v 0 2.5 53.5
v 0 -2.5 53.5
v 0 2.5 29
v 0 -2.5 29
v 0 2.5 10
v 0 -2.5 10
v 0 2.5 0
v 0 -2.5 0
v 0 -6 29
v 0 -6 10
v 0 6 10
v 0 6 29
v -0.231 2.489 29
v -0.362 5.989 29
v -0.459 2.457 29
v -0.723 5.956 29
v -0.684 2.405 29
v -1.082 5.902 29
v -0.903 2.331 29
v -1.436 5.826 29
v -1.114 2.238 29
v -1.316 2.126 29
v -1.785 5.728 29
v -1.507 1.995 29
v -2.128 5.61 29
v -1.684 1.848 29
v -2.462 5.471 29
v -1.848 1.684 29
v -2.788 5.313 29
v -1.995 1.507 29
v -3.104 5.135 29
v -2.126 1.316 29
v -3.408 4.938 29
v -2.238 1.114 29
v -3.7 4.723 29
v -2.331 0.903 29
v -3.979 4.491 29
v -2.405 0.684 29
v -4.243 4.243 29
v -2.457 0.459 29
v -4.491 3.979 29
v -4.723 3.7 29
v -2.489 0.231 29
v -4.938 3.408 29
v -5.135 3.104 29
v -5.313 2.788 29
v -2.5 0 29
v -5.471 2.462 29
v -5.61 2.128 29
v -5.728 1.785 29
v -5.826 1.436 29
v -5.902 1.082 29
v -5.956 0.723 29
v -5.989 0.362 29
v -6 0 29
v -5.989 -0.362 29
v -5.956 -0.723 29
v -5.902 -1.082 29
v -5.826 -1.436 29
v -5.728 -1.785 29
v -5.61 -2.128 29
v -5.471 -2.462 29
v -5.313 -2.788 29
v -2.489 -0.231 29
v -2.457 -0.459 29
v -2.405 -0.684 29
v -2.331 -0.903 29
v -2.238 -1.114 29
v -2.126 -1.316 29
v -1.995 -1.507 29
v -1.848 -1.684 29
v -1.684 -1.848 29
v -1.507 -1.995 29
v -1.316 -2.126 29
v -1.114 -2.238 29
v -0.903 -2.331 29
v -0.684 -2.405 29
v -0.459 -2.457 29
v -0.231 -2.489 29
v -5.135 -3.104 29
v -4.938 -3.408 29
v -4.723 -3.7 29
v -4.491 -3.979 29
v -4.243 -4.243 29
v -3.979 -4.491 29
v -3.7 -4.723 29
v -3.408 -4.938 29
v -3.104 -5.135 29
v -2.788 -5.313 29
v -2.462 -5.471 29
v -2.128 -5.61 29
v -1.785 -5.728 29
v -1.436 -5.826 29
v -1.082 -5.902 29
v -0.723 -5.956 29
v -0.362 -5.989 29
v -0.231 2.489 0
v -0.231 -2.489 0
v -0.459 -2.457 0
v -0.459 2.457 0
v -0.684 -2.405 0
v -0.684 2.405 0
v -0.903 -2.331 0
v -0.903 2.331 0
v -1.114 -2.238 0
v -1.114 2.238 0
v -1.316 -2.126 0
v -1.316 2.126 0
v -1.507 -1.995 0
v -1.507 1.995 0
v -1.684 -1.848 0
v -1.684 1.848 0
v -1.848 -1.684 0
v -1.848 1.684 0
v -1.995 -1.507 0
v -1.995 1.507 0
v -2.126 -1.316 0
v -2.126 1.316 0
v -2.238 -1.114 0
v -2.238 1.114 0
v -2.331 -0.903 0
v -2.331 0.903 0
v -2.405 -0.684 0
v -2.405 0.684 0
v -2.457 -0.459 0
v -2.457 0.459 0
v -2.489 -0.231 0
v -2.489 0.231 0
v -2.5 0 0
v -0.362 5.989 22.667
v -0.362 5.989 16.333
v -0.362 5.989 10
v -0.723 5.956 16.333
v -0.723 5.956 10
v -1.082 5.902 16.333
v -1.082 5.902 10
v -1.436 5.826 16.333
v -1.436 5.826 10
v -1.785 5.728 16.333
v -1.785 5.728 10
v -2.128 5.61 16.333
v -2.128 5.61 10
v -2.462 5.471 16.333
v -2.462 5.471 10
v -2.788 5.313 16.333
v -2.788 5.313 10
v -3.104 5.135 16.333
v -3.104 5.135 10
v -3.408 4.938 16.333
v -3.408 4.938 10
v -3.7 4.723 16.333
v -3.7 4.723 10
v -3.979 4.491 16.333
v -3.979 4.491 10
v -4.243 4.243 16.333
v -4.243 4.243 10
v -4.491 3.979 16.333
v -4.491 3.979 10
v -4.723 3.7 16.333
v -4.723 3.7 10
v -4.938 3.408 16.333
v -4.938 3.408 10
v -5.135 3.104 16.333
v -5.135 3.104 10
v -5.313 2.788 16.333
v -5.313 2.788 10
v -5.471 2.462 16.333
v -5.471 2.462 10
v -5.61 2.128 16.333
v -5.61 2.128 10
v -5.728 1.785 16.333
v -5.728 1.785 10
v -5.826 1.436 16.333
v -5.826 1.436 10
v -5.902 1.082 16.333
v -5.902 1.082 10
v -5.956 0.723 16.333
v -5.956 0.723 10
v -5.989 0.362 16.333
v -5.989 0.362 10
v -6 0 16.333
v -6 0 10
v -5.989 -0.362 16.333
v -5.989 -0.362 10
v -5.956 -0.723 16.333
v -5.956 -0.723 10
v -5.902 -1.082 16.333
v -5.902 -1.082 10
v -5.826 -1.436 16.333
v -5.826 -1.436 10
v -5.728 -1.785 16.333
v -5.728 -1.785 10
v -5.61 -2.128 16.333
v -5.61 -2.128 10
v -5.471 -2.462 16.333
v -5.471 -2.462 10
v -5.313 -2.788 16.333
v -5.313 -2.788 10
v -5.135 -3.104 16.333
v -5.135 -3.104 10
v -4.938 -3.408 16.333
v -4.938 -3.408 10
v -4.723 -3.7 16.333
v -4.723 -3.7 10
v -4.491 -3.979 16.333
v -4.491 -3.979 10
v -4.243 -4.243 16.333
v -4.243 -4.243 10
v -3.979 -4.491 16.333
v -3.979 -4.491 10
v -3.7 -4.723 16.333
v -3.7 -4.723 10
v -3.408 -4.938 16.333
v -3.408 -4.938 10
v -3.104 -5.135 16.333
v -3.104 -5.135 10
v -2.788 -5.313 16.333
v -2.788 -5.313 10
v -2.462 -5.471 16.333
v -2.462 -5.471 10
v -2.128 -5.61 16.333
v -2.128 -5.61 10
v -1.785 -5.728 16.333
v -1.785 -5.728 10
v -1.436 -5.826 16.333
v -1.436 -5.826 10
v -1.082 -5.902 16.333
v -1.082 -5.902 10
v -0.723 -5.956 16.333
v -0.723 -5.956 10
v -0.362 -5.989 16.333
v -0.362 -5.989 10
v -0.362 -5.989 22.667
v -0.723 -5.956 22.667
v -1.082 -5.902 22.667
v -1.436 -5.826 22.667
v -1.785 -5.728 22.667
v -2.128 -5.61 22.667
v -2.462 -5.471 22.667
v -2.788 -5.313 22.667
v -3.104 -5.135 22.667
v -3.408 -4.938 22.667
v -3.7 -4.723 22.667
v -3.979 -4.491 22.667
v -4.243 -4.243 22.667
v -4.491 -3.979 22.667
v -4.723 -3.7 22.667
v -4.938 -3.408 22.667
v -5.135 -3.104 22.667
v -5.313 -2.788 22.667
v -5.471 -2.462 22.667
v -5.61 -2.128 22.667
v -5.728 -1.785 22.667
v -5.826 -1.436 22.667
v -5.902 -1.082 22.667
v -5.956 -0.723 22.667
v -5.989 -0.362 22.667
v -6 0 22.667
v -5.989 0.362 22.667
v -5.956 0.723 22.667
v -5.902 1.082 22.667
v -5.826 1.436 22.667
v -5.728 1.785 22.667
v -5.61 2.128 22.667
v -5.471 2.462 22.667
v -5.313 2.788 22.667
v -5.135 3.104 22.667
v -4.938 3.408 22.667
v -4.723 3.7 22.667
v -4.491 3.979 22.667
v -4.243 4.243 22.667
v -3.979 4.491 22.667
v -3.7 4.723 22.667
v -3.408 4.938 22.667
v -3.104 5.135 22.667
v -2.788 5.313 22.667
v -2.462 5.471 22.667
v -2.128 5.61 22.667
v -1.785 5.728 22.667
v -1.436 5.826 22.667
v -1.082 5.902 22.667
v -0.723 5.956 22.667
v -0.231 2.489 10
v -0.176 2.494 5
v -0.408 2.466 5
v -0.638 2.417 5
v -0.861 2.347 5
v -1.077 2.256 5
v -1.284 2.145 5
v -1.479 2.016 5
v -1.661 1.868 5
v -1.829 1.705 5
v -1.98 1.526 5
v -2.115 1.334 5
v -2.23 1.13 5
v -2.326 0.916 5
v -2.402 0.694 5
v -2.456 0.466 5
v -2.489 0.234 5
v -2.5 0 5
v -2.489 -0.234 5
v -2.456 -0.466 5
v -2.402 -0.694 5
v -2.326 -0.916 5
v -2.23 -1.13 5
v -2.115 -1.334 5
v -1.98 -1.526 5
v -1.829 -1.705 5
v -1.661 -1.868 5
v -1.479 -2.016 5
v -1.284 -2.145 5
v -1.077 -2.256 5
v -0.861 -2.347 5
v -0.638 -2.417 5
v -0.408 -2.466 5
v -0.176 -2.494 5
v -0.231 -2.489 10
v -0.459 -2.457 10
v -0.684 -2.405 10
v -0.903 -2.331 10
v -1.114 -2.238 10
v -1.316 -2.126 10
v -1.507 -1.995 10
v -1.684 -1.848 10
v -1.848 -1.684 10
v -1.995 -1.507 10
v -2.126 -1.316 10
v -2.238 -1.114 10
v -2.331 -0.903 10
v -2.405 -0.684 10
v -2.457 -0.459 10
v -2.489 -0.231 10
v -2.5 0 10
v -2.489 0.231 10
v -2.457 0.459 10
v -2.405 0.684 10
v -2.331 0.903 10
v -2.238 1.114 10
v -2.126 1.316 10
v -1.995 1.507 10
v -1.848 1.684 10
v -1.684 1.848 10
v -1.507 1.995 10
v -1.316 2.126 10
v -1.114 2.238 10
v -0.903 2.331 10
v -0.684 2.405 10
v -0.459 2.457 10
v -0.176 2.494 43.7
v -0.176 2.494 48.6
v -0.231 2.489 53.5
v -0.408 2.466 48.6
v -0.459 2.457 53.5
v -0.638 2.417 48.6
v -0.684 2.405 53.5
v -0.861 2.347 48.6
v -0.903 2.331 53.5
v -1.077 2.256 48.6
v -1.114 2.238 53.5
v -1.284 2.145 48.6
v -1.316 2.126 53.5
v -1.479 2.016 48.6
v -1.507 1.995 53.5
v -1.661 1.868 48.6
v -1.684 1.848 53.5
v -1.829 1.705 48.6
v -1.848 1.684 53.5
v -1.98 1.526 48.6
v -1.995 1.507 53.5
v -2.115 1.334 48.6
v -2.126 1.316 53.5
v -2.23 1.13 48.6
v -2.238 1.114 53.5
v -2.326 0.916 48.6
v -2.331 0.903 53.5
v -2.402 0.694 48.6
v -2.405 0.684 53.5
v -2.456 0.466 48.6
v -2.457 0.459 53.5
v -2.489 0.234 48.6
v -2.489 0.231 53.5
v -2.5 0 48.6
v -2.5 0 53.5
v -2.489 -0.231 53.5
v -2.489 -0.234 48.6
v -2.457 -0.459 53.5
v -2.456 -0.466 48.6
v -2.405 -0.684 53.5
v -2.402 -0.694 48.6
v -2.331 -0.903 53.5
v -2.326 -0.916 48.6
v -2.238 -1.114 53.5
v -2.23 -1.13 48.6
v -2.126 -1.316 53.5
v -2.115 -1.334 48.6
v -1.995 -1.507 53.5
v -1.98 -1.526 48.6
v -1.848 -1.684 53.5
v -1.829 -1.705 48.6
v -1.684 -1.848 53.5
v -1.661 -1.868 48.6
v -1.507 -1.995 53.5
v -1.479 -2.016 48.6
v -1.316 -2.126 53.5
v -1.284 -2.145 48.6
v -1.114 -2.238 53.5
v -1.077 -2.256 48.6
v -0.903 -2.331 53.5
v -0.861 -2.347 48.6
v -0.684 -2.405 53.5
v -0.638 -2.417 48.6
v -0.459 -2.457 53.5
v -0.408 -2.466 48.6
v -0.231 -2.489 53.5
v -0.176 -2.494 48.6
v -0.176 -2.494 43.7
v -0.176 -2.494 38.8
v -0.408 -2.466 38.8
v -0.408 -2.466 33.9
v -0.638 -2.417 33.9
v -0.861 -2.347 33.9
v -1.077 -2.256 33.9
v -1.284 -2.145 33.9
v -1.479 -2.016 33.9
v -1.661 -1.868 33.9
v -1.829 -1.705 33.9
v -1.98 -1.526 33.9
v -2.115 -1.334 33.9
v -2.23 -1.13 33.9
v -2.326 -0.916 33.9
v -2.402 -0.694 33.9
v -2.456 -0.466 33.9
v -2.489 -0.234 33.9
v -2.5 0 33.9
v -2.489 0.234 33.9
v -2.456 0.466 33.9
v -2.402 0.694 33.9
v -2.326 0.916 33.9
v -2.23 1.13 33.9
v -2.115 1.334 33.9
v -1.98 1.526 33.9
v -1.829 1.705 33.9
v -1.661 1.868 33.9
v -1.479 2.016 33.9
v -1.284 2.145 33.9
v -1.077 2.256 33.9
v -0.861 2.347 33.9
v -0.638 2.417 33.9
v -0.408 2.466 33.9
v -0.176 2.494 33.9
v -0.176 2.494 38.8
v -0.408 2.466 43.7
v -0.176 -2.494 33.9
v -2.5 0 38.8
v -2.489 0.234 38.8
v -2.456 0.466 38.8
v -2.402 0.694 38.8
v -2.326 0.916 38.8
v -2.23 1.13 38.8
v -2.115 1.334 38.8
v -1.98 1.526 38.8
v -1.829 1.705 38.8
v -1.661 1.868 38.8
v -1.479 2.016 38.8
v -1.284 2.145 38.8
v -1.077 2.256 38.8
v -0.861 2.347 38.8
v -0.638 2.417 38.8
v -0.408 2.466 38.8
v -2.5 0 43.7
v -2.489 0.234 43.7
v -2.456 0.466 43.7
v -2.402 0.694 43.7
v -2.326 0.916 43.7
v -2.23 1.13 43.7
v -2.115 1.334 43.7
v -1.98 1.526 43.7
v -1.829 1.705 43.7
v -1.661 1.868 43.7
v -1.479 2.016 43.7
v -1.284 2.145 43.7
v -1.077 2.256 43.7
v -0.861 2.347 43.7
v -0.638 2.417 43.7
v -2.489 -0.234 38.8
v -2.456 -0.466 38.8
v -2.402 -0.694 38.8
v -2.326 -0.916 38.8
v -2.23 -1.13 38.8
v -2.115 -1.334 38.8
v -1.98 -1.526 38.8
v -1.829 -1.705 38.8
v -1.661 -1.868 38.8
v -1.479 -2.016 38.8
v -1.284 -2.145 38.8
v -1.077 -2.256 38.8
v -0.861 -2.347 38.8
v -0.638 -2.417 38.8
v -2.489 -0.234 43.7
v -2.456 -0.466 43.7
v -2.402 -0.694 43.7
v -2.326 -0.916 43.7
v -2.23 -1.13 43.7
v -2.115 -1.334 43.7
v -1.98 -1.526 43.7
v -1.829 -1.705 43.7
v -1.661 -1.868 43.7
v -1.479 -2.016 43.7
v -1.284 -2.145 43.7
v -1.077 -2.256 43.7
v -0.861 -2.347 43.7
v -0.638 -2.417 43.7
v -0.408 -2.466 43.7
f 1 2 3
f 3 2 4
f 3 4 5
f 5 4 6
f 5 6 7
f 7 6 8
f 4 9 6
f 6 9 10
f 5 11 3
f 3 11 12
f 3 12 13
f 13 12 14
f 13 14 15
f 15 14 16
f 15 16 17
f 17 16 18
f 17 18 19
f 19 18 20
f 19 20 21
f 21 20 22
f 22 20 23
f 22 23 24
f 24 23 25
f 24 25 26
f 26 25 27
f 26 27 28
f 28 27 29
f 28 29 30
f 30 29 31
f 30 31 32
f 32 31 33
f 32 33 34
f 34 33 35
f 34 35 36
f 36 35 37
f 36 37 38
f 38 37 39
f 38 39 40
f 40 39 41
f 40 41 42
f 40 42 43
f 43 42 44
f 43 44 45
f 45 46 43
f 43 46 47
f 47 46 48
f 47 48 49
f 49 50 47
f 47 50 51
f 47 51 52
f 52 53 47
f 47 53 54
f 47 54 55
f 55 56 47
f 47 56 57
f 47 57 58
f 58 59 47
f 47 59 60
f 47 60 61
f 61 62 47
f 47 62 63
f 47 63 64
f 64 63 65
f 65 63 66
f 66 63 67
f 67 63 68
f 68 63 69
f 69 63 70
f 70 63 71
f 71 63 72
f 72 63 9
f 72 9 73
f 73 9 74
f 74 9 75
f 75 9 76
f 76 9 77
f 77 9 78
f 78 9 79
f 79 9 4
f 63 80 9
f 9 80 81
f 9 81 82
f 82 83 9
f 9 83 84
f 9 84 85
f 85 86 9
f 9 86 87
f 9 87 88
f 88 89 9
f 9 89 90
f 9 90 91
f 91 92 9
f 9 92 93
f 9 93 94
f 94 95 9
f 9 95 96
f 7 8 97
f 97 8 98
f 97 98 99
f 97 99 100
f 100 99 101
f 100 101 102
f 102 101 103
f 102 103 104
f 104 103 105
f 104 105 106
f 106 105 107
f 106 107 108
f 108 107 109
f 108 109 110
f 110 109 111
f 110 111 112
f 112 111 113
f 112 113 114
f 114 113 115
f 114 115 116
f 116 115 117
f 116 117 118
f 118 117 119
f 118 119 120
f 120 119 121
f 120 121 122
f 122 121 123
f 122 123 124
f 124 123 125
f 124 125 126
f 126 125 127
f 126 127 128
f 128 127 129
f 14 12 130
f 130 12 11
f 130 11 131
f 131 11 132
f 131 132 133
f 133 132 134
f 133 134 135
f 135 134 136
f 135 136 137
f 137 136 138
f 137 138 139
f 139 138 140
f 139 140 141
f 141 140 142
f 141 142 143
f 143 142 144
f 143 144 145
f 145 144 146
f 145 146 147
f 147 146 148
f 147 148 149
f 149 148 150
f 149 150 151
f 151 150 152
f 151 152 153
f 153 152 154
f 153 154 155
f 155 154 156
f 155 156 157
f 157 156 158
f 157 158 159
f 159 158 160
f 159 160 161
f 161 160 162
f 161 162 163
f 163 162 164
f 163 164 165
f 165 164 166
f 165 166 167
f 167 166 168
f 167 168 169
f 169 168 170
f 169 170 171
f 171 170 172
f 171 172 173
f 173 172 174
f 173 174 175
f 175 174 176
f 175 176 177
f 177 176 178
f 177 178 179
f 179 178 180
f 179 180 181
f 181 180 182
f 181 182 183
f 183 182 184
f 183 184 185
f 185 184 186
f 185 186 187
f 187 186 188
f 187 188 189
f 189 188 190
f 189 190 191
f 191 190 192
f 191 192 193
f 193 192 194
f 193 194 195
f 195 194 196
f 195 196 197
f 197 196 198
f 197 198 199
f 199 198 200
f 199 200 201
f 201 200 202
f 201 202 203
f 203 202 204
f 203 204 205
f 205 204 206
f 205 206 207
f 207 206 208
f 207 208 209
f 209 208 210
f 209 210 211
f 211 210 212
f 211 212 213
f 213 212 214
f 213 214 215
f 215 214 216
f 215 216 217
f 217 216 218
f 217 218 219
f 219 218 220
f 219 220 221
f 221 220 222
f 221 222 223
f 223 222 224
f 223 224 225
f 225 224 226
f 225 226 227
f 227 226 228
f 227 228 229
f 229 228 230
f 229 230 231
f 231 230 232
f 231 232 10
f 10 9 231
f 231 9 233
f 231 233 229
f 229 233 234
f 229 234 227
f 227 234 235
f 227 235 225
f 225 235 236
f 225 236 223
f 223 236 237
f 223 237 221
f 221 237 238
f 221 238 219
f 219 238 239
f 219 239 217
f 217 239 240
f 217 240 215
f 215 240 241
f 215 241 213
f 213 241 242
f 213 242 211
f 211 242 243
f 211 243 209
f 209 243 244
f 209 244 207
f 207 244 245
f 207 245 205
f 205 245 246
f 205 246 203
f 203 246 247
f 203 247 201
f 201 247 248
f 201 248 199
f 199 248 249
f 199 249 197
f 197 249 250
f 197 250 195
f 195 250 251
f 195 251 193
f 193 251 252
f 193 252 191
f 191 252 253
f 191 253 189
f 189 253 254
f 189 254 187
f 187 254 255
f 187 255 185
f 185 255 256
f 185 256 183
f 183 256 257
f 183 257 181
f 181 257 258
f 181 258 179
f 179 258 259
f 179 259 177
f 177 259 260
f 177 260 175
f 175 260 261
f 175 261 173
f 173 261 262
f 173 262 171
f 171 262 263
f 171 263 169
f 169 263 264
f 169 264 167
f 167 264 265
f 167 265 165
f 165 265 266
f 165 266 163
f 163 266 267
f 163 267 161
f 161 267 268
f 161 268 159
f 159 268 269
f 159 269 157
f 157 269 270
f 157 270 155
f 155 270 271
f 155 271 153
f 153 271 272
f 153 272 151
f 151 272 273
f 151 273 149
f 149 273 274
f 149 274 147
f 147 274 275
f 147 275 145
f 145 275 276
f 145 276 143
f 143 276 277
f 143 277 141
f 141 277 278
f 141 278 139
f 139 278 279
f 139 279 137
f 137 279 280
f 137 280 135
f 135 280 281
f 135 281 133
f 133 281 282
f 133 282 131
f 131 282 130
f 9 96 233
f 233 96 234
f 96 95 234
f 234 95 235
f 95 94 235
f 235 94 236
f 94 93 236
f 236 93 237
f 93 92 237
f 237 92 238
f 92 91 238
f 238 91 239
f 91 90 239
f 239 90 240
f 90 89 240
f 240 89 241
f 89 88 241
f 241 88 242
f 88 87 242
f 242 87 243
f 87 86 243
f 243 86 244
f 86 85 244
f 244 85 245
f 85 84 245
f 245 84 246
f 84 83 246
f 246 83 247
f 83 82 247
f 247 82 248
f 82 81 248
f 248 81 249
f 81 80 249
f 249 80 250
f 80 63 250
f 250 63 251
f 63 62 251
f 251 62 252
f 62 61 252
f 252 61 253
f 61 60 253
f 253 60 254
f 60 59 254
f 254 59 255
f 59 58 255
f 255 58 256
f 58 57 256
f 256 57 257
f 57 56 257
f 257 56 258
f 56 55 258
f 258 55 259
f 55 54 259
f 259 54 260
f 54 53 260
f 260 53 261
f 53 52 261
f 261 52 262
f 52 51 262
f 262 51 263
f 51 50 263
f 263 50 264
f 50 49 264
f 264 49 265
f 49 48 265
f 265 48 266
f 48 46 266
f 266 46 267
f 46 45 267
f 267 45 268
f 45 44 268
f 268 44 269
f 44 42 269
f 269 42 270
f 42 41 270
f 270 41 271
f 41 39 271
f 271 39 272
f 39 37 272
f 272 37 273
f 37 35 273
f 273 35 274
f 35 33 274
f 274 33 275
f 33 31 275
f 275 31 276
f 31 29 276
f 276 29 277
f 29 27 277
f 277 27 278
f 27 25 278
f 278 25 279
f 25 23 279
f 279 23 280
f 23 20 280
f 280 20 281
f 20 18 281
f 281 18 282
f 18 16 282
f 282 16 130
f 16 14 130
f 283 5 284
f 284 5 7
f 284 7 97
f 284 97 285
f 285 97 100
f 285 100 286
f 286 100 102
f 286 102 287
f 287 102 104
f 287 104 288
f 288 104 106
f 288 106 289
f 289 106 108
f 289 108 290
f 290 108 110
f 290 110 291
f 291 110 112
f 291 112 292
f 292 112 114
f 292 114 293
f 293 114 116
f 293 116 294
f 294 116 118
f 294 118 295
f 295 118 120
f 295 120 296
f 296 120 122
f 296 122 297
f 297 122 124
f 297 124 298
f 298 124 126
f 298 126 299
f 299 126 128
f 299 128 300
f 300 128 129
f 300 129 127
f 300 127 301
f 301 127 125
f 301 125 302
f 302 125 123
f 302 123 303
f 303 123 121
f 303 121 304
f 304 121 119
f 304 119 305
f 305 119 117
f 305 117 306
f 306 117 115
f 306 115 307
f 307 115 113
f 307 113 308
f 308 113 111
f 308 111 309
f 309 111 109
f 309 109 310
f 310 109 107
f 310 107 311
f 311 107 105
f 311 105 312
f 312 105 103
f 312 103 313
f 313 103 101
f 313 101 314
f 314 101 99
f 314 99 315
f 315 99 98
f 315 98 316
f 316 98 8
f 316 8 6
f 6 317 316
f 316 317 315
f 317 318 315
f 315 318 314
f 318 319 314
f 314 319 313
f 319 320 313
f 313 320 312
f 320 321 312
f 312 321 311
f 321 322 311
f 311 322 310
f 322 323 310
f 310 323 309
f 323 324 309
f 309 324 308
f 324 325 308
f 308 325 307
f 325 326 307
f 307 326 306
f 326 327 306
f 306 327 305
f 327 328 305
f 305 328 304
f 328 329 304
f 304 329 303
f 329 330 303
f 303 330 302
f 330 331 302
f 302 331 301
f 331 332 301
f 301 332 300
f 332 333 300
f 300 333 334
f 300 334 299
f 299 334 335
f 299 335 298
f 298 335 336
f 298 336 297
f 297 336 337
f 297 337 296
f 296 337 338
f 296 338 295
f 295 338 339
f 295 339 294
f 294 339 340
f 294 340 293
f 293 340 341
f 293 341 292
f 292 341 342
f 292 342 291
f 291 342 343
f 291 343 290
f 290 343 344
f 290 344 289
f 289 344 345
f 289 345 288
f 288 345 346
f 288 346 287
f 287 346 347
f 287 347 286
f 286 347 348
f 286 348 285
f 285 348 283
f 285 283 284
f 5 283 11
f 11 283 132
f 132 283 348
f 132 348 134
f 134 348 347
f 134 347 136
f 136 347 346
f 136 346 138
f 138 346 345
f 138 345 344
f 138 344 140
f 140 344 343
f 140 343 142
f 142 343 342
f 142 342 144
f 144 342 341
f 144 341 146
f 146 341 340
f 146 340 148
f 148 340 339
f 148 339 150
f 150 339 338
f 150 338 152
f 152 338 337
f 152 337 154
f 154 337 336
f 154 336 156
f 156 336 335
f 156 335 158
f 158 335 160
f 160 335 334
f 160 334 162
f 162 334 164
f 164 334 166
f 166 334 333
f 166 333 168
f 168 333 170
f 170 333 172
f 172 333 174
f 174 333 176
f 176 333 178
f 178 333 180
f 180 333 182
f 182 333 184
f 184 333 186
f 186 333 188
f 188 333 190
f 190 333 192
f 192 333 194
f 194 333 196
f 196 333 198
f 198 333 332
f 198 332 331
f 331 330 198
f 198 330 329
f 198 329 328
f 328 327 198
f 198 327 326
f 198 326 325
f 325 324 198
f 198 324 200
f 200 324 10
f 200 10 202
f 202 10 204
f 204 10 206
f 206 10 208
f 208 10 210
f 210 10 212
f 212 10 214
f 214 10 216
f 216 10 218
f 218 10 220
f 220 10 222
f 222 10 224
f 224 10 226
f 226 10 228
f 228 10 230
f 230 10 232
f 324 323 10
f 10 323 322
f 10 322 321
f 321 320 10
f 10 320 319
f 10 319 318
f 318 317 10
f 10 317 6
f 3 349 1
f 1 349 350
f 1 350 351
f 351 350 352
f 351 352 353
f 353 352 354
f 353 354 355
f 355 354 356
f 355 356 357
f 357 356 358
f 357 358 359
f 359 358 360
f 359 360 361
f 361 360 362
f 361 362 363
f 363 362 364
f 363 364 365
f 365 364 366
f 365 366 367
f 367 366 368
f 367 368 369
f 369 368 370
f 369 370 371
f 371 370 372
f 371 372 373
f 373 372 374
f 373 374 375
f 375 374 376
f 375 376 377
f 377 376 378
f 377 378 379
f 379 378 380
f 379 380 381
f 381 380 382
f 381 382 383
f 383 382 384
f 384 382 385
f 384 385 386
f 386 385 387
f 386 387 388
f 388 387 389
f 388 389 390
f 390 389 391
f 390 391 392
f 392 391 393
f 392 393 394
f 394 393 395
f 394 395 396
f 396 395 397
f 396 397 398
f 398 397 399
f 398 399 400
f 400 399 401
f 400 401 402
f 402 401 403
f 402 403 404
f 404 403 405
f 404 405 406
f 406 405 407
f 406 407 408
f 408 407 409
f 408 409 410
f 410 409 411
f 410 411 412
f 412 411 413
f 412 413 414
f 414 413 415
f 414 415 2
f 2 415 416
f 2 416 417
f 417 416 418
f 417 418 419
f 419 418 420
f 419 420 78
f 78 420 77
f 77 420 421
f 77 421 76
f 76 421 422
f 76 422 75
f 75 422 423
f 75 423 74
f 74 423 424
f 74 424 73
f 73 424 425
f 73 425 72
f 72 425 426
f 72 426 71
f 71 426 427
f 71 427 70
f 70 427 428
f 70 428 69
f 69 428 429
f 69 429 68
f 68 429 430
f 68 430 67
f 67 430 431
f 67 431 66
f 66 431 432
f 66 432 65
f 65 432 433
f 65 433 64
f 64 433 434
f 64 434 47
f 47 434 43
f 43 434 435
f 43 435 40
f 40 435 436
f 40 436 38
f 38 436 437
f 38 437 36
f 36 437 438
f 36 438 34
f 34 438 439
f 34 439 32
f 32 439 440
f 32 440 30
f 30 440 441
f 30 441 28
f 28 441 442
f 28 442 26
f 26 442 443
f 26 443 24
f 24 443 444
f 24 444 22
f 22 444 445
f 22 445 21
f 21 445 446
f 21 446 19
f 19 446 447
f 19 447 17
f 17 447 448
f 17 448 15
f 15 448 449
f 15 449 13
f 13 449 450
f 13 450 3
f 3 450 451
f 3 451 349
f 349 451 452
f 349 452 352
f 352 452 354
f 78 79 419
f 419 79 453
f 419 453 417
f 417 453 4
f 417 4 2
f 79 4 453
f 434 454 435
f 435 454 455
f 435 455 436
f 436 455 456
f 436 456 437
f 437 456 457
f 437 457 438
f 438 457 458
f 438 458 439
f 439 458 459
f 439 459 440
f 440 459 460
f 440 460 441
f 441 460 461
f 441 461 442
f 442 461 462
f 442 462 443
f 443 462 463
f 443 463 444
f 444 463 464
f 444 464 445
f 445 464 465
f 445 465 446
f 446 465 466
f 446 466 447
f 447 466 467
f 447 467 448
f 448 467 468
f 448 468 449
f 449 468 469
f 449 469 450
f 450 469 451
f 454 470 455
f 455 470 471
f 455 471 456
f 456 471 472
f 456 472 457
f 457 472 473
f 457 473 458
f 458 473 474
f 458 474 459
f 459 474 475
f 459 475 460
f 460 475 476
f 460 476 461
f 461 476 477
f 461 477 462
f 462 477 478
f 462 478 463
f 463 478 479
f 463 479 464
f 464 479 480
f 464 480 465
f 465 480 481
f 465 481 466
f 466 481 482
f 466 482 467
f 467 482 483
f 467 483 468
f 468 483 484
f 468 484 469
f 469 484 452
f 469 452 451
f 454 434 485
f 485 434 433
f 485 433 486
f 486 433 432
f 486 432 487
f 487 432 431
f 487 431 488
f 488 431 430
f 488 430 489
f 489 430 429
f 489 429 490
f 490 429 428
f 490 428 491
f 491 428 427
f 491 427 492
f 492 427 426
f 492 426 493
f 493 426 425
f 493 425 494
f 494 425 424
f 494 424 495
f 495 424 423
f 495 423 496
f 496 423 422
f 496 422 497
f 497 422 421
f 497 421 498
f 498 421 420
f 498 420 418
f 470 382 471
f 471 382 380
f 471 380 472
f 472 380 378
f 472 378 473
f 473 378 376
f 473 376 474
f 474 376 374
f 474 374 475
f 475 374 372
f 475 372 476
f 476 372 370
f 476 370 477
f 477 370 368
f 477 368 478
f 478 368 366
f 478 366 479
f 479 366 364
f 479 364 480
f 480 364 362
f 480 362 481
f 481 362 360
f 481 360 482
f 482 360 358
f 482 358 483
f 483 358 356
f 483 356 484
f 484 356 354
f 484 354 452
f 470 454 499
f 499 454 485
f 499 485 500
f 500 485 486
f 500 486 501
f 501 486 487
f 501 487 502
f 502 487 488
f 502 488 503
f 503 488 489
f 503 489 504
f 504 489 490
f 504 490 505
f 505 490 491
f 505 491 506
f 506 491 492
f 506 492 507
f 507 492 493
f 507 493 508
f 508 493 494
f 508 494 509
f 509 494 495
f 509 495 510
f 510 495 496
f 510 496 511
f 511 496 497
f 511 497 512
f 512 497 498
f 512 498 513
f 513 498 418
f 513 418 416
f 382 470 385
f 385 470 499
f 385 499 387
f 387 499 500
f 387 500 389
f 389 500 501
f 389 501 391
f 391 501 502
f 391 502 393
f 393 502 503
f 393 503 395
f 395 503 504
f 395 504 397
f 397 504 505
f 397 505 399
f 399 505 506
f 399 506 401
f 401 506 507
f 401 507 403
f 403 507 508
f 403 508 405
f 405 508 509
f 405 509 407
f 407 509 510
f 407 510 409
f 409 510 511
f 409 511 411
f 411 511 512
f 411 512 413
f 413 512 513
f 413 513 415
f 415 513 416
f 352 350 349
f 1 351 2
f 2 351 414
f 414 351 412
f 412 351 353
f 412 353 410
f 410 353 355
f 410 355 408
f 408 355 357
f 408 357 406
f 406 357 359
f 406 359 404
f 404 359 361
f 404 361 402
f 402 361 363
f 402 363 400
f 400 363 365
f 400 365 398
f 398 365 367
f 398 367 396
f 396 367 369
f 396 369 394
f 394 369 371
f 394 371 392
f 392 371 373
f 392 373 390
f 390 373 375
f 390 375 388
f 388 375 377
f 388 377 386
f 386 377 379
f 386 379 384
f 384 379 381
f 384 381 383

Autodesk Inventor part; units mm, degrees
sketch "Sketch1" plane through (0, 0, 0) normal (0, 0, 1) x (1, 0, 0)
  line L0 (0, 1.7864) -> (0, -1.7864) construction
  line L1 (-3.6109, 0) -> (3.6109, 0) construction
  circle A0 centre (0, 0) radius 2.5
  dimension "d0" = 5
extrude "Extrusion1" add sketch "Sketch1" along normal blind 10
sketch "Sketch2" plane through (0, 0, 10) normal (0, 0, 1) x (1, 0, 0)
  circle A0 centre (0, 0) radius 6
  dimension "d3" = 12
extrude "Extrusion2" add sketch "Sketch2" along normal blind 19
sketch "Sketch3" plane through (0, 0, 29) normal (0, 0, 1) x (1, 0, 0)
  circle A0 centre (0, 0) radius 2.5
  dimension "d6" = 5
extrude "Extrusion3" add sketch "Sketch3" along normal blind 24.5
sketch "Sketch5" plane through (0, 0, 53.5) normal (0, 0, 1) x (1, 0, 0)
  line L0 (0, 8.3226) -> (8.1221, 8.3226)
  line L1 (8.1221, 8.3226) -> (8.1221, -8.0744)
  line L2 (8.1221, -8.0744) -> (0, -8.0744)
  line L3 (0, -8.0744) -> (0, 8.3226)
  point P0 (0, 0)
extrude "Extrusion5" cut sketch "Sketch5" against normal blind 58
properties part number "Stang" material "S235"
